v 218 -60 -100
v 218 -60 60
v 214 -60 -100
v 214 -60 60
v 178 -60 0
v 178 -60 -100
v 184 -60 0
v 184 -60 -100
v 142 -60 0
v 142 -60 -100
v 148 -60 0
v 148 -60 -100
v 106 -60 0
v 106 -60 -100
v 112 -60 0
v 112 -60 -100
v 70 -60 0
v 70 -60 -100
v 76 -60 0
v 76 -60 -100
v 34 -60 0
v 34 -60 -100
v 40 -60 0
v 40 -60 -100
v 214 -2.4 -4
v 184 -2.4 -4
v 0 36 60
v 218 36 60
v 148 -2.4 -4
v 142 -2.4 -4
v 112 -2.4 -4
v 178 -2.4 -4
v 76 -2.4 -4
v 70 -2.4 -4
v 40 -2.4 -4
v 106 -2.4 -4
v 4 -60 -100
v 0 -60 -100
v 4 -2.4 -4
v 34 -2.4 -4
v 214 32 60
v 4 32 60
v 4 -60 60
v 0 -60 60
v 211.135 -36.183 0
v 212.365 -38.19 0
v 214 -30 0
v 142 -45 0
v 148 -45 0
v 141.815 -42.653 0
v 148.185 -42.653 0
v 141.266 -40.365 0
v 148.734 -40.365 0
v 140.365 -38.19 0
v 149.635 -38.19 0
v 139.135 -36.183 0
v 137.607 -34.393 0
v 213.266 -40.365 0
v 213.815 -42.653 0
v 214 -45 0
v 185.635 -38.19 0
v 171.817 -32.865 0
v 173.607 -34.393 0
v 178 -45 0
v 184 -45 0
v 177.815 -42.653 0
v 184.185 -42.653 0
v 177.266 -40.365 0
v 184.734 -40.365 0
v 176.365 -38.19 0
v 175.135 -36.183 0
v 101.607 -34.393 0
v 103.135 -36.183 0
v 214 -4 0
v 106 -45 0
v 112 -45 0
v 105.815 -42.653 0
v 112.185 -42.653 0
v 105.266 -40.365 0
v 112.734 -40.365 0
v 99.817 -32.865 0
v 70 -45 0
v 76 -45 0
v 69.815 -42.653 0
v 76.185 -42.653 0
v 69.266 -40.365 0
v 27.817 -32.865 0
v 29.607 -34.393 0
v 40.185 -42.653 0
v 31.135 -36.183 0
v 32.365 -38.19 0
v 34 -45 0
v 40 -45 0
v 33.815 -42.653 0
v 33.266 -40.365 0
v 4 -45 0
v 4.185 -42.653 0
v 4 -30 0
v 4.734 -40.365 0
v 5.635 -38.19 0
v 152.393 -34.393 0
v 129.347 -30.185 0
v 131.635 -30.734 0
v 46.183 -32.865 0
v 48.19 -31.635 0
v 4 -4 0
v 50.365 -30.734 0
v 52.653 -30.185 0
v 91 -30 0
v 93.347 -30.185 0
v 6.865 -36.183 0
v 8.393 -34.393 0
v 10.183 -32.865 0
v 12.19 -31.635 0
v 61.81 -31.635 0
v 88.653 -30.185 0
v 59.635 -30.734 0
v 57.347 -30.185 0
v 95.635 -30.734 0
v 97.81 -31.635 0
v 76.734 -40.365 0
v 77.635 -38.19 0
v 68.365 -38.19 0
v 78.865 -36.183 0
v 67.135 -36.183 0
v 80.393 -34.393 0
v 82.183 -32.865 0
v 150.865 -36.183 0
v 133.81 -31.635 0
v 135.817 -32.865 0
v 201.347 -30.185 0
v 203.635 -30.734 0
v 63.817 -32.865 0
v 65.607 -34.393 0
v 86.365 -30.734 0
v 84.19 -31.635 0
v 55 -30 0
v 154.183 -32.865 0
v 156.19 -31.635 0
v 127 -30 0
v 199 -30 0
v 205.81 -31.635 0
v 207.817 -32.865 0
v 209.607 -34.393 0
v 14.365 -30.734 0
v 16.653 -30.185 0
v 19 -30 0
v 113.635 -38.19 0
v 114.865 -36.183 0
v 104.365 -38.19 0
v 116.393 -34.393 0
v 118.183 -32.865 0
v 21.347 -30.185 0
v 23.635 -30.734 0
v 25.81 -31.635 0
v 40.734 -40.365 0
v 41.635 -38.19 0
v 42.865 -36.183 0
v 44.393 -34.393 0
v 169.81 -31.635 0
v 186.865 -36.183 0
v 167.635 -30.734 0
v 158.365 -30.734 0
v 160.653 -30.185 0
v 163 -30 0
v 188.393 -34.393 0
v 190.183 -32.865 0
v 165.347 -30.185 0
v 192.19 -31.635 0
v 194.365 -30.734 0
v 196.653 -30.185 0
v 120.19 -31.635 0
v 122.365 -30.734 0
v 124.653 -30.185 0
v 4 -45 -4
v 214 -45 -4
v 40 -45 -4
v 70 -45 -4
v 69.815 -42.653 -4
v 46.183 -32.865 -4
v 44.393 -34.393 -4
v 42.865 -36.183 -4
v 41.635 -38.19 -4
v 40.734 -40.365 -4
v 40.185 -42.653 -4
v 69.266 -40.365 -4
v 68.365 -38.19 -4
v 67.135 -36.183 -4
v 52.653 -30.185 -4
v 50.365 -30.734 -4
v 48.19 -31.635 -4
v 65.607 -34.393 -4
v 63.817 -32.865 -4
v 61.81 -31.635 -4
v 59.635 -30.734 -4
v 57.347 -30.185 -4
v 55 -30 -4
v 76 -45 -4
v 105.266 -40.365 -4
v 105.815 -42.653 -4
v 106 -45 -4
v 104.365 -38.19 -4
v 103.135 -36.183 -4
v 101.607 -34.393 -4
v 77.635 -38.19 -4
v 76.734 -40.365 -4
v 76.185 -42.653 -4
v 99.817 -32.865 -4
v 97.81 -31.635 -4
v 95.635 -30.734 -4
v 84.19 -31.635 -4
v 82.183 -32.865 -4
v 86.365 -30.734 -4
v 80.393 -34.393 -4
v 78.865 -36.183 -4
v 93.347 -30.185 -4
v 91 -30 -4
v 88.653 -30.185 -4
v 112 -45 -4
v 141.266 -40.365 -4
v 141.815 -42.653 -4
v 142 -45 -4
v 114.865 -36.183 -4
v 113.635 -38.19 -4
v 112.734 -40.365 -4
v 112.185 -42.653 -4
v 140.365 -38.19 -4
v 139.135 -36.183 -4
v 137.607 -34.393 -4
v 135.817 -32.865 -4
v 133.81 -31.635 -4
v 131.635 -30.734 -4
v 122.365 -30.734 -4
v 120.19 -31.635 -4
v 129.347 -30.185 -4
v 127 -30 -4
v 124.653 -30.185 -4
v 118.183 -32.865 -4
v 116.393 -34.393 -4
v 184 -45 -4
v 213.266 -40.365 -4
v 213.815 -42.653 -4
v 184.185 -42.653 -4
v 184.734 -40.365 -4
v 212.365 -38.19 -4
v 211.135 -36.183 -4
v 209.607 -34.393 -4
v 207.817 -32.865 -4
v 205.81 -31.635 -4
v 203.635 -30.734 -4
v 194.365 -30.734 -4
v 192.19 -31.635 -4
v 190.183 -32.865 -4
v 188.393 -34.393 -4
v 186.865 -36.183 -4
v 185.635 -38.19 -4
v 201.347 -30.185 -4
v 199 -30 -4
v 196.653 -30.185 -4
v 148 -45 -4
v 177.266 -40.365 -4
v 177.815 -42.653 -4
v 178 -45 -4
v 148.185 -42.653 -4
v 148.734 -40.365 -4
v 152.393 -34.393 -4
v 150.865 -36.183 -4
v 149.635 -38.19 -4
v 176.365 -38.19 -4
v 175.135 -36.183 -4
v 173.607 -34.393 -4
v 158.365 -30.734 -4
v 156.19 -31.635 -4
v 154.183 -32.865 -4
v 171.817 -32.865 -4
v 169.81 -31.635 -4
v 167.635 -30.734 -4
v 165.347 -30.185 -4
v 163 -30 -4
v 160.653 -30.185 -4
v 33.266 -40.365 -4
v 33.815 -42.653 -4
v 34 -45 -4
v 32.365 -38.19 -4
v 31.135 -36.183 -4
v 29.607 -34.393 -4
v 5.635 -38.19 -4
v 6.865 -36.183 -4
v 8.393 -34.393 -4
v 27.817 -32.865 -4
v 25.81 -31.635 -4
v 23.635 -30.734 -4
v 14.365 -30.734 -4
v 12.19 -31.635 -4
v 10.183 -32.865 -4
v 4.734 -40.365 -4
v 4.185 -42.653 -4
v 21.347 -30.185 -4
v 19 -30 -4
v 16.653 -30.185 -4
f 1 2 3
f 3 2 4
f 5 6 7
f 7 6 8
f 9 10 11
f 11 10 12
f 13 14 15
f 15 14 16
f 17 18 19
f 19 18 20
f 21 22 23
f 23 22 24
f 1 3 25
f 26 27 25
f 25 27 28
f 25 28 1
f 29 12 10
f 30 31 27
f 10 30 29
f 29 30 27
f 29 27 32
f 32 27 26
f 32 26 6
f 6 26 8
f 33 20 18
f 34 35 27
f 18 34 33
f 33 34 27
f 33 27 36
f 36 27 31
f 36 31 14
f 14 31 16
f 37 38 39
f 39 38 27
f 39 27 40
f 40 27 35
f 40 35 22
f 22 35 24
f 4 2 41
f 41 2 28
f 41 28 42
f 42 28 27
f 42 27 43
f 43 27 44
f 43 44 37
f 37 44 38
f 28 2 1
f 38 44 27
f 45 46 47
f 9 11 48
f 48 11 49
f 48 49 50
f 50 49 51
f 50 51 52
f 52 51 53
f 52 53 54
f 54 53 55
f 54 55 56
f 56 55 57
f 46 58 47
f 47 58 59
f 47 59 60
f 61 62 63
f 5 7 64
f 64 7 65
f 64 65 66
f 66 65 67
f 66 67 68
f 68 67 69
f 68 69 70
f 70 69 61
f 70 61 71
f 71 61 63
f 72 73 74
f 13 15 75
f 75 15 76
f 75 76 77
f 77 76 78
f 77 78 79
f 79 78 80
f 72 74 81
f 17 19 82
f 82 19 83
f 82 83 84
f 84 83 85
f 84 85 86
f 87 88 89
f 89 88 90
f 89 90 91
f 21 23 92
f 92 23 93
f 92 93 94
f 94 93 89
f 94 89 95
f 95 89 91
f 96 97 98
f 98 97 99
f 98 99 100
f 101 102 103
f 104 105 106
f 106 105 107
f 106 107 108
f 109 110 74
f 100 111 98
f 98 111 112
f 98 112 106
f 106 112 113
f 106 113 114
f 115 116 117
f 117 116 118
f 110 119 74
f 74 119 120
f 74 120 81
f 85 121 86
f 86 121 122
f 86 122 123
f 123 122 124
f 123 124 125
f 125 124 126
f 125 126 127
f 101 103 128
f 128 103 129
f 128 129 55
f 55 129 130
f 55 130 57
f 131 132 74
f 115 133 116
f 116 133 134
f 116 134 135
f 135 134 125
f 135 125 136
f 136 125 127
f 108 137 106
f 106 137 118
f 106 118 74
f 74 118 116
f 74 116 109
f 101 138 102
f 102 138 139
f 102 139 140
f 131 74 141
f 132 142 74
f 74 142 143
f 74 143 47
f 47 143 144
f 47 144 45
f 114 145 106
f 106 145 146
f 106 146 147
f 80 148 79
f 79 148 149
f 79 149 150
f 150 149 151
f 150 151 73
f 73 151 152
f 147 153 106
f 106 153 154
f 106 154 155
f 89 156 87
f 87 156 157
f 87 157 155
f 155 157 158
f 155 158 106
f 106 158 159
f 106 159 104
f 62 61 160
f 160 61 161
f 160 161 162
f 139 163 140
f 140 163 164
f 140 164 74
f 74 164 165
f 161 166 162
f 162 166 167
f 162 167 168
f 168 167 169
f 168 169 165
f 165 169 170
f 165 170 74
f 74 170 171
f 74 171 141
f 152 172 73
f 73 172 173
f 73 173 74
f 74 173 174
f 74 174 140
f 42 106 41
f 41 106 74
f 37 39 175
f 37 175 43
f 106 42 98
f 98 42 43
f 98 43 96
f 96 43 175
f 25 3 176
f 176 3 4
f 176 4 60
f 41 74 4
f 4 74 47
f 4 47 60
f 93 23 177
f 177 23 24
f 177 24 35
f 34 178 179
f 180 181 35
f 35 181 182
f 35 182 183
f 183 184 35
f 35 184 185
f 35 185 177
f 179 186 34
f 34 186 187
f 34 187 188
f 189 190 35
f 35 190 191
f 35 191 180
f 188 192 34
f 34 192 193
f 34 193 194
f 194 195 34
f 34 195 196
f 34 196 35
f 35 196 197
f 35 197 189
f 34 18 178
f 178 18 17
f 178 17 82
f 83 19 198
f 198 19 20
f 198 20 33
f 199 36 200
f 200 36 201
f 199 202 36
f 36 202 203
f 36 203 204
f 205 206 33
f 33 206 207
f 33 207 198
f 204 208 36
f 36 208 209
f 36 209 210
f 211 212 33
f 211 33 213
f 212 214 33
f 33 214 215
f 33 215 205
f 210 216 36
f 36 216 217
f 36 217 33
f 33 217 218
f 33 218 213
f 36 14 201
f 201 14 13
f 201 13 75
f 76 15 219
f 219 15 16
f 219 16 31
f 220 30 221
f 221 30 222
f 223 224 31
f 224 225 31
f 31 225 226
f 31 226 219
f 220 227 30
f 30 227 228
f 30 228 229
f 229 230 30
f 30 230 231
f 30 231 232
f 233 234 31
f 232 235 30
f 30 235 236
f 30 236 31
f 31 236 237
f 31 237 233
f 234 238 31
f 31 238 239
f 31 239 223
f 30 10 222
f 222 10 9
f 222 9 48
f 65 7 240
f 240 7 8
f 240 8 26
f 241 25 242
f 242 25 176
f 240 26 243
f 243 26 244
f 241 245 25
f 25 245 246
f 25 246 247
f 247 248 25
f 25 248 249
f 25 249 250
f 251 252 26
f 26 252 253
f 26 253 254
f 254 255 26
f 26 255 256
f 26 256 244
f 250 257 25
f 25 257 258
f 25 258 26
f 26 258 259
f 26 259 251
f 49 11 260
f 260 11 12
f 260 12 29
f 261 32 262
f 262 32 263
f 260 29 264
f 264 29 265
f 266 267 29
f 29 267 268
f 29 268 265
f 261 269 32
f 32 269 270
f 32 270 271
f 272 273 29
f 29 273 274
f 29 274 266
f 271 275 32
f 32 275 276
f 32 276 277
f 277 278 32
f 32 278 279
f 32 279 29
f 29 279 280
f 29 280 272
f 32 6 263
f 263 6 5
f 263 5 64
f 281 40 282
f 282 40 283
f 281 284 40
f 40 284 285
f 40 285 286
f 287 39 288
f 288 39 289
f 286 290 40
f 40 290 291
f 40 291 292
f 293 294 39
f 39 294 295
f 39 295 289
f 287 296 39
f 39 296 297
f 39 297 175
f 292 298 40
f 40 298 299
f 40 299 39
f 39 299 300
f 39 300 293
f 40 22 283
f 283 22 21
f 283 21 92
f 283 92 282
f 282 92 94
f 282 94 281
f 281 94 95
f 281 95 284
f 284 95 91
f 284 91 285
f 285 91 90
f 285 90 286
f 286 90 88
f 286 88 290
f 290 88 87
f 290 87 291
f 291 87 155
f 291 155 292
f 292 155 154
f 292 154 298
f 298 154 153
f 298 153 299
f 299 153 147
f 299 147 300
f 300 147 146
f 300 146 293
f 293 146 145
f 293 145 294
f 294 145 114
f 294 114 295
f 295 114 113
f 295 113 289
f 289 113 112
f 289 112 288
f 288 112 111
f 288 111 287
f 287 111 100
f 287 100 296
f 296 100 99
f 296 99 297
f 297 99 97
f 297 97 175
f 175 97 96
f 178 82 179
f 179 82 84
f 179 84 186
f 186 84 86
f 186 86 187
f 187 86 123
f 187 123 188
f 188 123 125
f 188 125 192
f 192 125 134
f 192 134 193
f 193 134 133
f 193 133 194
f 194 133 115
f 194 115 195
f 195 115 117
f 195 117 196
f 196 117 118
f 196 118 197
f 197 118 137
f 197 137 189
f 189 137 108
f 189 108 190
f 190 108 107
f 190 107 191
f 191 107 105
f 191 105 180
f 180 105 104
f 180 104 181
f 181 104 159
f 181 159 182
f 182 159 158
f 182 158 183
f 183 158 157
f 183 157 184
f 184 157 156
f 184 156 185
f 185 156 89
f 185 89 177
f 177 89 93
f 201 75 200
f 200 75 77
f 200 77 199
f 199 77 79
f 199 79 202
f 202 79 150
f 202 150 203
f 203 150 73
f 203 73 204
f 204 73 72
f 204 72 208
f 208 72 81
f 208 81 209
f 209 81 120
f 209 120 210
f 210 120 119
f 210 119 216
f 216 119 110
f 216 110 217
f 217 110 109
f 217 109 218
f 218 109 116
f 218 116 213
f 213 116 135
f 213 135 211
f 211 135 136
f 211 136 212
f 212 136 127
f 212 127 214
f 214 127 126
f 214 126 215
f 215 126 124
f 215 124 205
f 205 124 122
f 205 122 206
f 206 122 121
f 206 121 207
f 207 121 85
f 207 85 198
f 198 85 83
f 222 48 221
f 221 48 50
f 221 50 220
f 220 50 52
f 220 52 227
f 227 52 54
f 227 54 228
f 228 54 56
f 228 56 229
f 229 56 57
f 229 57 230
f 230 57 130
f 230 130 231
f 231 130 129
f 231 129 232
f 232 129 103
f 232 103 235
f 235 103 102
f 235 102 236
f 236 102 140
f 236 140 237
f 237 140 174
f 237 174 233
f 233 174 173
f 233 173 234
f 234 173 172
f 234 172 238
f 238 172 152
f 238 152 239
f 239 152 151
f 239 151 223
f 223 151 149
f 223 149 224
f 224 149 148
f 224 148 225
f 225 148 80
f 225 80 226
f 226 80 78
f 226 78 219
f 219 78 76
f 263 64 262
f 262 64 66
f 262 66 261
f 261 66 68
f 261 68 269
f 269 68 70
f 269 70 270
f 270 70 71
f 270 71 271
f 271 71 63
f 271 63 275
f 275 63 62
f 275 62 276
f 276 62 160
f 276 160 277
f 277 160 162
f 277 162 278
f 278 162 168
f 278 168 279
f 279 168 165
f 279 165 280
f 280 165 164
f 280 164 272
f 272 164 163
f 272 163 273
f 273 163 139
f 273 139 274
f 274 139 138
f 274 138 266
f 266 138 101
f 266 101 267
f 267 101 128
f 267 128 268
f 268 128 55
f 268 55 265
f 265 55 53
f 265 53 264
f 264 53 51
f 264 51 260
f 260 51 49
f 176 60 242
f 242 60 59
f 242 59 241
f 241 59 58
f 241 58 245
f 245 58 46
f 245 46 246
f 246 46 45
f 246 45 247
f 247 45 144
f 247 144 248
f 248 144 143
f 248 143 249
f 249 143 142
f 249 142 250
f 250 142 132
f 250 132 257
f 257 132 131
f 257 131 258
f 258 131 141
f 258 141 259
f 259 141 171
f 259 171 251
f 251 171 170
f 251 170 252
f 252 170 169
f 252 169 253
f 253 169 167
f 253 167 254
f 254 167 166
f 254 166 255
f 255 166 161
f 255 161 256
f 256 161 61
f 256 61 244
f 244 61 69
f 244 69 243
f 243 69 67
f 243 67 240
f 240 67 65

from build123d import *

# Parameters (mm, degrees)
SALIENTE_EXTRUIR1_DEPTH = 218
CROQUIS4_W              = 30.00000000000003
CROQUIS4_H              = 96.00000000000001
CROQUIS4_W_2            = 30
CORTAR_EXTRUIR1_DEPTH   = 60
CORTAR_EXTRUIR2_DEPTH   = 10
REDONDEO1_R             = 15


with BuildPart() as part:
    # Croquis2 → Saliente-Extruir1 (new body)
    with BuildSketch(Plane(origin=(0, 0, 0), x_dir=(0, 0, -1), z_dir=(1, 0, 0))):
        Polygon((-60.000000000000014, 35.99999999999998), (-59.99999999999997, -60), (100, -59.99999999999999), align=None)
    extrude(amount=SALIENTE_EXTRUIR1_DEPTH)

    # Croquis3 → Cortar-Recubrir1 section 0
    with BuildSketch(Plane.XY.offset(60)):
        with BuildLine():
            Line((4, 32), (214, 32))
            Line((214, 32), (214, -59.99999999999997))
            Line((214, -59.99999999999997), (4.0000000000000115, -59.99999999999997))
            Line((4.0000000000000115, -59.99999999999997), (4, 32))
        make_face()
    # Croquis3D3 → Cortar-Recubrir1 section 1
    with BuildSketch(Plane(origin=(4, -3.9999999999999964, 0), x_dir=(0.9662349396012463, -0.25766265056033233, 0), z_dir=(0, 0, 1))):
        with BuildLine():
            Line((0, 0), (202.9093373162617, 54.10915661766981))
            Line((202.9093373162617, 54.10915661766981), (217.33844574764032, 0))
            Line((217.33844574764032, 0), (14.42910843137861, -54.1091566176698))
            Line((14.42910843137861, -54.1091566176698), (0, 0))
        make_face()
    loft(mode=Mode.SUBTRACT)

    # Croquis4 → Cortar-Extruir1 (cut)
    with BuildSketch(Plane.XZ.offset(60)):
        Polygon((3.9999999999999982, -4), (33.99999999999999, -4), (34, -100), (4.000000000000011, -100), align=None)
        Polygon((40, -4), (70, -4), (70, -100), (40.000000000000014, -100), align=None)
        Polygon((76.00000000000001, -3.9999999999999973), (106.00000000000001, -3.9999999999999973), (106.00000000000003, -100), (76.00000000000003, -100), align=None)
        Polygon((112.00000000000001, -4), (142.00000000000003, -4), (142.00000000000003, -100), (112.00000000000003, -100), align=None)
        with Locations((199, -52.00000000000001)):
            Rectangle(CROQUIS4_W, CROQUIS4_H)
        with Locations((163.00000000000003, -52.00000000000001)):
            Rectangle(CROQUIS4_W_2, CROQUIS4_H)
    extrude(amount=-CORTAR_EXTRUIR1_DEPTH, mode=Mode.SUBTRACT)

    # Croquis5 → Cortar-Extruir2 (cut)
    with BuildSketch(Plane(origin=(0, 1.7e-16, -3.9999999999999973), x_dir=(-1, 0, 0), z_dir=(0, 4e-17, -1))):
        Polygon((-199, -60), (-184, -60), (-184, -29.999999999999993), (-214.00000000000006, -30), (-214.00000000000003, -60), align=None)
        Polygon((-163.00000000000003, -60), (-148.00000000000003, -60), (-148.00000000000006, -30.000000000000004), (-178.00000000000006, -30.00000000000001), (-178.00000000000006, -60), align=None)
        Polygon((-127, -60), (-112, -60), (-112, -30), (-142.00000000000003, -30.000000000000004), (-142.00000000000003, -60), align=None)
        Polygon((-91.00000000000001, -60), (-76.00000000000001, -59.99999999999999), (-76.00000000000001, -29.999999999999993), (-106.00000000000003, -29.999999999999993), (-106.00000000000001, -60), align=None)
        Polygon((-55.00000000000001, -60), (-40.00000000000001, -60), (-40.00000000000001, -30), (-70.00000000000001, -30.000000000000007), (-70, -60), align=None)
        Polygon((-18.999999999999996, -60), (-3.9999999999999964, -60), (-3.9999999999999964, -30), (-33.99999999999999, -30), (-33.99999999999999, -60), align=None)
    extrude(amount=-CORTAR_EXTRUIR2_DEPTH, mode=Mode.SUBTRACT)

    # Redondeo1
    redondeo1_edges = [part.edges().sort_by_distance(p)[0] for p in [
        (3.9999999999999964, -30, -1.9999999999999993),
        (33.99999999999999, -30, -1.9999999999999991),
        (40.00000000000001, -30, -1.9999999999999993),
        (70.00000000000001, -30.000000000000007, -1.9999999999999993),
        (76.00000000000001, -29.999999999999993, -1.9999999999999991),
        (106.00000000000003, -29.999999999999993, -1.9999999999999993),
        (112, -30, -1.9999999999999993),
        (142.00000000000003, -30.000000000000004, -1.9999999999999993),
        (148.00000000000006, -30.000000000000004, -1.9999999999999993),
        (178.00000000000006, -30.00000000000001, -1.9999999999999993),
        (184, -29.999999999999993, -1.9999999999999993),
        (214.00000000000006, -30, -1.9999999999999993),
    ]]
    fillet(redondeo1_edges, radius=REDONDEO1_R - 0.0001)  # a hair under: the kernel refuses the full size


solid = part.part
